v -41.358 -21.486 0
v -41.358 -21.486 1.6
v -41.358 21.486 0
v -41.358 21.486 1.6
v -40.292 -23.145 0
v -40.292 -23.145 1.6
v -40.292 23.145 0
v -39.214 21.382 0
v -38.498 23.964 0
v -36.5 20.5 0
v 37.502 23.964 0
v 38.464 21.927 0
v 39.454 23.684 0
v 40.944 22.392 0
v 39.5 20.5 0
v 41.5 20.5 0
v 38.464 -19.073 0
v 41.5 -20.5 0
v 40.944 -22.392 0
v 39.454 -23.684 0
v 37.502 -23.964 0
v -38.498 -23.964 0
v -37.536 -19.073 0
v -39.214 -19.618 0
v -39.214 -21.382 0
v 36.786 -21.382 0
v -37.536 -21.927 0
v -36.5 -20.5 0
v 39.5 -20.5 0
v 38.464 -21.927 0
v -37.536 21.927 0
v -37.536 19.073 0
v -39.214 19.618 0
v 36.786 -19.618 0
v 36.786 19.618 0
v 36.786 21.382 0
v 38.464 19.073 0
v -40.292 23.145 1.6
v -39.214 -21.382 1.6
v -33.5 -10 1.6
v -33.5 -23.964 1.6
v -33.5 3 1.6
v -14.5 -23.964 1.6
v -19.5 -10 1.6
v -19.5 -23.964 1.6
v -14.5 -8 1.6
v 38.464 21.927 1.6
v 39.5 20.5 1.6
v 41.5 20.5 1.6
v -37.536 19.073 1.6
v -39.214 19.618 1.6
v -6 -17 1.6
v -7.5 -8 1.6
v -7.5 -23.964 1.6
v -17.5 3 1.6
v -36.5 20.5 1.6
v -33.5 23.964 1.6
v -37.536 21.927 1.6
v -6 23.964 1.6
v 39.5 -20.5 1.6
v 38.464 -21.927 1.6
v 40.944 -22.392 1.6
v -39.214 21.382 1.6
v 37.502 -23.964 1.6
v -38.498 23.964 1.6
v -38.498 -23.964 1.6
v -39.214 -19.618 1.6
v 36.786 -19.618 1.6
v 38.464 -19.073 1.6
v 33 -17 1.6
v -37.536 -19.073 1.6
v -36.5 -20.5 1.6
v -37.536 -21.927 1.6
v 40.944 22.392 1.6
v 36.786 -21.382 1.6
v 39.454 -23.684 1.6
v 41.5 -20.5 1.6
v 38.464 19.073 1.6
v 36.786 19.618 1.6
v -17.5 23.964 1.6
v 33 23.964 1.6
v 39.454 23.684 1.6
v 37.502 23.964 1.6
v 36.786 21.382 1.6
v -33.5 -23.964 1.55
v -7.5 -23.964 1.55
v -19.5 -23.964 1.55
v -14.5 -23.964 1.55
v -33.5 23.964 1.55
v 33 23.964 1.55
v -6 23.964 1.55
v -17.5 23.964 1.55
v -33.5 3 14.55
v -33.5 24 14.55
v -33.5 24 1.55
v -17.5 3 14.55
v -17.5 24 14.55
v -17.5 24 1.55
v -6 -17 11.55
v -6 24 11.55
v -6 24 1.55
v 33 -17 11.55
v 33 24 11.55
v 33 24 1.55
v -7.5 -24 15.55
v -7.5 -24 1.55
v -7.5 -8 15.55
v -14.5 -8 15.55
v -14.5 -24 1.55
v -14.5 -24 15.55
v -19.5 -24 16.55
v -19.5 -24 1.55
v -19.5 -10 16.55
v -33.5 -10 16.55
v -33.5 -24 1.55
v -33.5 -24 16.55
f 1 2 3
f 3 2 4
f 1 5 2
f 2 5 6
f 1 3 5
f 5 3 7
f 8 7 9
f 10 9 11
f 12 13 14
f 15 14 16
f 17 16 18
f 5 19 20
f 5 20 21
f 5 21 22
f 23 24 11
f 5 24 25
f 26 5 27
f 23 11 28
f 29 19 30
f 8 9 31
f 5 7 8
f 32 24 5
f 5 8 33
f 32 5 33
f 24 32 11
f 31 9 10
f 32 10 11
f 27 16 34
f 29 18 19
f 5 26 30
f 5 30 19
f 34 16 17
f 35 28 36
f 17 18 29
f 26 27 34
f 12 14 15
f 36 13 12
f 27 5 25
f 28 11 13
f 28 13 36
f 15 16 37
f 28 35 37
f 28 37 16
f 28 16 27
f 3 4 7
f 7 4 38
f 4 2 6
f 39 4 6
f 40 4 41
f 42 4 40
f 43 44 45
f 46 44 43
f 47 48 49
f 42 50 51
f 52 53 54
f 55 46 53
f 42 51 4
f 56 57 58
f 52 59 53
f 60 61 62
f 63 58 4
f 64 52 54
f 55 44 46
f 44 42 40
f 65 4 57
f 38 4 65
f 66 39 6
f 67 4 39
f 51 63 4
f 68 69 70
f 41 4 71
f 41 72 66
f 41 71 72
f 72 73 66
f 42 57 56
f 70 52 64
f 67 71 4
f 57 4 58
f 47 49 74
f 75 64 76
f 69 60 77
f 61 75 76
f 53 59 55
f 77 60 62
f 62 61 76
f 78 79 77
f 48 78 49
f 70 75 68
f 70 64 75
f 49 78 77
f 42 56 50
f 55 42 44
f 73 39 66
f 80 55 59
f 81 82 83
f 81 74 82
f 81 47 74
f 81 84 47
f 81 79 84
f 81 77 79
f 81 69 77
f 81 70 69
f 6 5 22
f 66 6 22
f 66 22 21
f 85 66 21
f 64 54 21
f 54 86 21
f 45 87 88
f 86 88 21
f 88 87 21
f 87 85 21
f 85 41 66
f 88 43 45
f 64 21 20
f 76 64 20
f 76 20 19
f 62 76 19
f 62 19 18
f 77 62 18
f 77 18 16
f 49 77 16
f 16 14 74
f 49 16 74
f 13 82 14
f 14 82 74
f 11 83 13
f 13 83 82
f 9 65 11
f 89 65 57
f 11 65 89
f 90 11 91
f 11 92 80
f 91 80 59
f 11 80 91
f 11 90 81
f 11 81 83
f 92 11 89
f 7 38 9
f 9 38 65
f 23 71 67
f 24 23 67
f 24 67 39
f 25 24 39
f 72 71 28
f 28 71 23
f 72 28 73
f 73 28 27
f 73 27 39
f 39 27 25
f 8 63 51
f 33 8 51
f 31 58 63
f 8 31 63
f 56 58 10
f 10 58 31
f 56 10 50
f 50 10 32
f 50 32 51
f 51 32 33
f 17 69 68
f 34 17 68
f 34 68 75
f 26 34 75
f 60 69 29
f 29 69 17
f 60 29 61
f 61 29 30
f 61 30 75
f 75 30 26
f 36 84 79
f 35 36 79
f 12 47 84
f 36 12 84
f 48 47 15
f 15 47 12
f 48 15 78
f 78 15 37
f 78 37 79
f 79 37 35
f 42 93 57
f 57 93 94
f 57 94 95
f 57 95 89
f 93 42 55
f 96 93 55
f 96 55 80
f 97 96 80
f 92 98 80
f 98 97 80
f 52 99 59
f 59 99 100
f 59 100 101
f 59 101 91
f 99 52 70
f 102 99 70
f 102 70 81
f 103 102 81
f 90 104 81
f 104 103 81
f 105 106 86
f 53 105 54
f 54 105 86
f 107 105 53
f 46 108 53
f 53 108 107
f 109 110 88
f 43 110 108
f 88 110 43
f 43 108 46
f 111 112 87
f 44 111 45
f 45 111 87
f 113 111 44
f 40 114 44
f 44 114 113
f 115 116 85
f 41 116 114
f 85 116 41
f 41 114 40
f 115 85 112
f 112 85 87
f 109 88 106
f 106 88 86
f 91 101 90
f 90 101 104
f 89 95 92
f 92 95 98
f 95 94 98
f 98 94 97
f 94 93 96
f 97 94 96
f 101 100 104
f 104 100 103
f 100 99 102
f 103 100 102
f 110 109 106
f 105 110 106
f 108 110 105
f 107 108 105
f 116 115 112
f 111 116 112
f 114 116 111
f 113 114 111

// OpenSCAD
// file: ../Colours.scad
//
//FASTENERS
//
boltColour = 		 "gray";
nutColour =  		 "LightGray";
washerColour =       "LightGray";
threadedRodColour =  "gray";


//
//PLATES
//
plateColour =  		"SlateGray";


//
//ELECTRONICS
//
boardColour = 			"red";
photoDiodeColour = 		"DarkSlateGrey";
IRMountColour = 		"white";
batteryColour = 		"blue";
batteryHolderColour = 	"green";
cameraMountColour = 	"green";
cameraColour = 			"red";


//
//MECHANICAL
//
motorColour = 			"WhiteSmoke";
motorMountColour =  	"green";
motorCouplingColour=	"grey";
wheelColour	=			"yellow";


//
//OTHER
//
ballFenderCol = 		"green";
// file: ../Fasteners.scad
include <Colours.scad>

//
//CODE FOR BOLTS	
//

//define some standard bolt dimensions
// [ name on BOM, bolt diameter, hex head thickness, width of head measured between corners]
M3Bolt = ["M3 bolt", 3, 2.3,   6];
M4Bolt = ["M4 bolt", 4,   3, 7.7];
M5Bolt = ["M5 bolt", 5, 4.5, 8.8];
M6Bolt = ["M6 bolt", 6,   5,  11];

//functions for quickly getting bolt dimensions, etc.
function boltName(type) =          type[0];
function boltHoleDia(type) =       type[1];
function boltHeadThickness(type) = type[2];
function boltCorners(type) =       type[3];

module Bolt(type, length, printToBOM = false)
{
	color(boltColour)
	 union()
	 {
		 //hexagonal head shape (cylinder limited to 6 side segments)
		 cylinder(r = boltCorners(type)/2, h = boltHeadThickness(type), $fn = 6);
		 //the bolt shank
		 translate([0,0,-length])
		  cylinder(r = boltHoleDia(type)/2, h = length + 0.1);
	 }
	
	//echoes properties to command line, etc. so it can be counted manually
	//or by a program
	if(printToBOM == true)
	{
		echo(boltName(type), "x", length);
	}
}



//
//CODE FOR NUTS	
//

//define some standard nut dimensions
// [ nut name on BOM, hole diameter, nut thickness, width measured between corners, width between flats]
M3Nut = ["M3 nut", 3, 2.3, 6.1, 5.3];
M4Nut = ["M4 nut", 4,   3, 7.7,   0];
M5Nut = ["M5 nut", 5, 4.5, 8.8,   0];
M6Nut = ["M6 nut", 6,   5,  11,   0];

//functions for quickly getting nut dimensions
function nutName(type) =      type[0];
function nutHoleDia(type) =   type[1];
function nutThickness(type) = type[2];
function nutCorners(type) =   type[3];
function nutFlats(type) =     type[4];

module Nut(type, printToBOM = false, negShape = false)
{
	color(nutColour)
	 difference()
	 {
	 	 //hexagonal shape (cylinder limited to 6 side segments)
		 cylinder(r = nutCorners(type)/2, h = nutThickness(type), $fn = 6);
		
		 //allows for a nut to be generated which is useful for being a negative in other 
		 //difference operations down the track
		 if(negShape == false) 
		 {
			 //the hole through the centre
			 translate([0,0,-0.05])
			  cylinder(r = nutHoleDia(type)/2, h = nutThickness(type) + 0.1);
		 }
	 }
	
	//echoes properties to command line, etc. so it can be counted manually
	//or by a program
	if(printToBOM == true)
	{
		echo(nutName(type));
	}
}




//
//CODE FOR WASHERS
//

//define some standard washers
// [washer name, inner hole diameter, outer diameter, thickness]
M3Washer = ["M3 washer", 3.3,  6.8, 0.5];
M4Washer = ["M4 washer", 4.4,  8.8, 0.8];
M5Washer = ["M5 washer", 5.4,  9.8,   1];
M6Washer = ["M6 washer", 6.5, 11.8, 1.6];

//functions for quickly getting washer dimensions
function washerName(type) =        type[0];
function washerID(type) =     	   type[1];
function washerOD(type) = 		   type[2];
function washerThickness(type) =   type[3];

module Washer(type, printToBOM = false, negShape = false)
{
	color(washerColour)
	 difference()
	 {
		 //main circle shape
		 cylinder(r = washerOD(type)/2, h = washerThickness(type));
		
		 //allows for a washer to be generated which is useful for being a negative in other 
	 	 //difference operations down the track
		 if(negShape == false) 
		 {
			 //the hole through the centre
			 translate([0,0,-0.05])
			  cylinder(r = washerID(type)/2, h = washerThickness(type) + 0.1);
		 }
	 }
	
	//echoes properties to command line, etc. so it can be counted manually
	//or by a program
	if(printToBOM == true)
	{
		echo(washerName(type));
	}
}




//
//CODE FOR THREADED ROD
//

//define some standard dimensions and properties
// [name on BOM, rod diameter]
M3Threaded = ["M3 threaded rod", 3];
M4Threaded = ["M4 threaded rod", 4];
M5Threaded = ["M5 threaded rod", 5];
M6Threaded = ["M6 threaded rod", 6];

//functions for quickly getting bolt dimensions
function threadName(type) =   type[0];
function threadDia(type) =    type[1];

module ThreadedRod(type, length, printToBOM = false)
{
	color(threadedRodColour)
	 cylinder(r = threadDia(type)/2, h = length);
	
	//echoes properties to command line, etc. so it can be counted manually
	//or by a program
	if(printToBOM == true)
	{
		echo(threadName(type), "x", length);
	}
}
// file: ../Electronics.scad
include <Fasteners.scad>
include <Colours.scad>




//
//ELECTRONICS CONTROLLER BOARDS
//

// [name on BOM, path to stl model if any, hole type, [hole top left position], [hole top right position], [hole bot right position], [hole bot left position] ]
ArduinoUNO =   [ "Arduino UNO",  "Arduino.stl", M3Bolt, 			[-19, 24.15], 	[31.8, 8.95], 	[31.8, -19.05], [-20.3, -24.15] ];
L298NHBridge = [ "L298N H-Bridge", "L298N.stl", M3Bolt, 			[-18.5, 18.5], 	[18.5, 18.5], 	[18.5, -18.5], 	[-18.5, -18.5] ];
BeagleBone =   [ "BeagleBone Black", "BeagleBoneBlack.stl", M3Bolt, [-28, 24], 		[38, 21], 		[38, -21], 		[-28, -24] ];
OdroidU3 = 	   [ "Ordoid U3",	"OdroidU3.stl",	M3Bolt, 			[-38, 20.5],	[38, 20.5],		[38, -20.5],	[-38, -20.5]];

//functions for getting useful dimensions
function boardName(type) = type[0];
function getModelPath(type) = type[1];
function boardHoleDia(type) = boltHoleDia(type[2]);
function getHolePos(type, holeNum) = type[holeNum+3]; //hole num starts at 0

//used to get a hole template for difference operations
module HoleTemplate(board, boltLength, clearance)
{
	for(i=[0:3])
	{
		echo(i);
		translate(getHolePos(board, i))
		 cylinder(r = (boardHoleDia(board)+clearance)/2, h = boltLength);
	}
}




//
//module to create a model of the boards, mainly visual
//

module DisplayBoard(type)
{
	//arduino model is not properly centred
	if(type == ArduinoUNO)
	{
		translate([-19, 24.15, 0])
		 color(boardColour)
		  import(getModelPath(type));
	}
	
	else
	{
		color(boardColour)
		 import(getModelPath(type));
	}
	
	echo(boardName(type));
}

/*
translate([0,0,20])
translate(ArduinoUNO[3])
 DisplayBoard(ArduinoUNO);

difference()
{	
	translate([-50, -35, 0.1])
	cube([100,70,5]);
	HoleTemplate(ArduinoUNO, 20, 0.5);
}
*/
// main file
include <../Electronics.scad>
include <../Fasteners.scad>


cornerRadius = 3.5;
length = 83;
width = 48;
thickness = 1.6;

union()
{
	difference()
	{
		translate([-(length-2*cornerRadius)/2, -(width-2*cornerRadius)/2, 0])
		 minkowski()
		{
			//the cicuit board
			cube([length-2*cornerRadius, width-2*cornerRadius, thickness/2]);
			//the rounded corners
			cylinder(r = cornerRadius, h = thickness/2);
		}
		
		//the mounting holes
		translate([0,0,-0.5])
		 HoleTemplate(OdroidU3, thickness + 1, 0);
	}

	//the ethernet port
	translate([ -length/2 + 8,width/2 - 21, thickness - 0.05])
	 cube([16,21,13]);
	 
	//the USB ports
	//single port
	translate([-length/2 + 8 + 7 + 7 + 5, -width/2, thickness - 0.05])
	 cube([7, 16, 14]);
	//set of two
	translate([-length/2 + 8, -width/2, thickness - 0.05])
	 cube([14, 14, 15]);
	 
	//heatsink
	translate([-6, -width/2 + 7, thickness - 0.05])
	 cube([39, 41, 10]);
}
